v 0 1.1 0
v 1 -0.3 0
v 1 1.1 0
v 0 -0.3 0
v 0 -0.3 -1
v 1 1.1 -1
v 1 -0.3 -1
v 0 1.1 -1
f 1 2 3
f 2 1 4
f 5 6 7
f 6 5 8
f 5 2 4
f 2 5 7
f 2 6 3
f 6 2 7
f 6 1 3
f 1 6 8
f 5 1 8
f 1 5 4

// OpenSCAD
//------------------------------------------------------
// Base
// BAse
// 5@xes 15/07/2022
// Size Must be close to 1x1 !
//------------------------------------------------------

$fn=20;


//render() translate([0.5,0,0]) mirror([1,0,0]) letter("/");
render() translate([0,-0.3,-1]) cube(size = [1.0,1.4,1], center = false);
